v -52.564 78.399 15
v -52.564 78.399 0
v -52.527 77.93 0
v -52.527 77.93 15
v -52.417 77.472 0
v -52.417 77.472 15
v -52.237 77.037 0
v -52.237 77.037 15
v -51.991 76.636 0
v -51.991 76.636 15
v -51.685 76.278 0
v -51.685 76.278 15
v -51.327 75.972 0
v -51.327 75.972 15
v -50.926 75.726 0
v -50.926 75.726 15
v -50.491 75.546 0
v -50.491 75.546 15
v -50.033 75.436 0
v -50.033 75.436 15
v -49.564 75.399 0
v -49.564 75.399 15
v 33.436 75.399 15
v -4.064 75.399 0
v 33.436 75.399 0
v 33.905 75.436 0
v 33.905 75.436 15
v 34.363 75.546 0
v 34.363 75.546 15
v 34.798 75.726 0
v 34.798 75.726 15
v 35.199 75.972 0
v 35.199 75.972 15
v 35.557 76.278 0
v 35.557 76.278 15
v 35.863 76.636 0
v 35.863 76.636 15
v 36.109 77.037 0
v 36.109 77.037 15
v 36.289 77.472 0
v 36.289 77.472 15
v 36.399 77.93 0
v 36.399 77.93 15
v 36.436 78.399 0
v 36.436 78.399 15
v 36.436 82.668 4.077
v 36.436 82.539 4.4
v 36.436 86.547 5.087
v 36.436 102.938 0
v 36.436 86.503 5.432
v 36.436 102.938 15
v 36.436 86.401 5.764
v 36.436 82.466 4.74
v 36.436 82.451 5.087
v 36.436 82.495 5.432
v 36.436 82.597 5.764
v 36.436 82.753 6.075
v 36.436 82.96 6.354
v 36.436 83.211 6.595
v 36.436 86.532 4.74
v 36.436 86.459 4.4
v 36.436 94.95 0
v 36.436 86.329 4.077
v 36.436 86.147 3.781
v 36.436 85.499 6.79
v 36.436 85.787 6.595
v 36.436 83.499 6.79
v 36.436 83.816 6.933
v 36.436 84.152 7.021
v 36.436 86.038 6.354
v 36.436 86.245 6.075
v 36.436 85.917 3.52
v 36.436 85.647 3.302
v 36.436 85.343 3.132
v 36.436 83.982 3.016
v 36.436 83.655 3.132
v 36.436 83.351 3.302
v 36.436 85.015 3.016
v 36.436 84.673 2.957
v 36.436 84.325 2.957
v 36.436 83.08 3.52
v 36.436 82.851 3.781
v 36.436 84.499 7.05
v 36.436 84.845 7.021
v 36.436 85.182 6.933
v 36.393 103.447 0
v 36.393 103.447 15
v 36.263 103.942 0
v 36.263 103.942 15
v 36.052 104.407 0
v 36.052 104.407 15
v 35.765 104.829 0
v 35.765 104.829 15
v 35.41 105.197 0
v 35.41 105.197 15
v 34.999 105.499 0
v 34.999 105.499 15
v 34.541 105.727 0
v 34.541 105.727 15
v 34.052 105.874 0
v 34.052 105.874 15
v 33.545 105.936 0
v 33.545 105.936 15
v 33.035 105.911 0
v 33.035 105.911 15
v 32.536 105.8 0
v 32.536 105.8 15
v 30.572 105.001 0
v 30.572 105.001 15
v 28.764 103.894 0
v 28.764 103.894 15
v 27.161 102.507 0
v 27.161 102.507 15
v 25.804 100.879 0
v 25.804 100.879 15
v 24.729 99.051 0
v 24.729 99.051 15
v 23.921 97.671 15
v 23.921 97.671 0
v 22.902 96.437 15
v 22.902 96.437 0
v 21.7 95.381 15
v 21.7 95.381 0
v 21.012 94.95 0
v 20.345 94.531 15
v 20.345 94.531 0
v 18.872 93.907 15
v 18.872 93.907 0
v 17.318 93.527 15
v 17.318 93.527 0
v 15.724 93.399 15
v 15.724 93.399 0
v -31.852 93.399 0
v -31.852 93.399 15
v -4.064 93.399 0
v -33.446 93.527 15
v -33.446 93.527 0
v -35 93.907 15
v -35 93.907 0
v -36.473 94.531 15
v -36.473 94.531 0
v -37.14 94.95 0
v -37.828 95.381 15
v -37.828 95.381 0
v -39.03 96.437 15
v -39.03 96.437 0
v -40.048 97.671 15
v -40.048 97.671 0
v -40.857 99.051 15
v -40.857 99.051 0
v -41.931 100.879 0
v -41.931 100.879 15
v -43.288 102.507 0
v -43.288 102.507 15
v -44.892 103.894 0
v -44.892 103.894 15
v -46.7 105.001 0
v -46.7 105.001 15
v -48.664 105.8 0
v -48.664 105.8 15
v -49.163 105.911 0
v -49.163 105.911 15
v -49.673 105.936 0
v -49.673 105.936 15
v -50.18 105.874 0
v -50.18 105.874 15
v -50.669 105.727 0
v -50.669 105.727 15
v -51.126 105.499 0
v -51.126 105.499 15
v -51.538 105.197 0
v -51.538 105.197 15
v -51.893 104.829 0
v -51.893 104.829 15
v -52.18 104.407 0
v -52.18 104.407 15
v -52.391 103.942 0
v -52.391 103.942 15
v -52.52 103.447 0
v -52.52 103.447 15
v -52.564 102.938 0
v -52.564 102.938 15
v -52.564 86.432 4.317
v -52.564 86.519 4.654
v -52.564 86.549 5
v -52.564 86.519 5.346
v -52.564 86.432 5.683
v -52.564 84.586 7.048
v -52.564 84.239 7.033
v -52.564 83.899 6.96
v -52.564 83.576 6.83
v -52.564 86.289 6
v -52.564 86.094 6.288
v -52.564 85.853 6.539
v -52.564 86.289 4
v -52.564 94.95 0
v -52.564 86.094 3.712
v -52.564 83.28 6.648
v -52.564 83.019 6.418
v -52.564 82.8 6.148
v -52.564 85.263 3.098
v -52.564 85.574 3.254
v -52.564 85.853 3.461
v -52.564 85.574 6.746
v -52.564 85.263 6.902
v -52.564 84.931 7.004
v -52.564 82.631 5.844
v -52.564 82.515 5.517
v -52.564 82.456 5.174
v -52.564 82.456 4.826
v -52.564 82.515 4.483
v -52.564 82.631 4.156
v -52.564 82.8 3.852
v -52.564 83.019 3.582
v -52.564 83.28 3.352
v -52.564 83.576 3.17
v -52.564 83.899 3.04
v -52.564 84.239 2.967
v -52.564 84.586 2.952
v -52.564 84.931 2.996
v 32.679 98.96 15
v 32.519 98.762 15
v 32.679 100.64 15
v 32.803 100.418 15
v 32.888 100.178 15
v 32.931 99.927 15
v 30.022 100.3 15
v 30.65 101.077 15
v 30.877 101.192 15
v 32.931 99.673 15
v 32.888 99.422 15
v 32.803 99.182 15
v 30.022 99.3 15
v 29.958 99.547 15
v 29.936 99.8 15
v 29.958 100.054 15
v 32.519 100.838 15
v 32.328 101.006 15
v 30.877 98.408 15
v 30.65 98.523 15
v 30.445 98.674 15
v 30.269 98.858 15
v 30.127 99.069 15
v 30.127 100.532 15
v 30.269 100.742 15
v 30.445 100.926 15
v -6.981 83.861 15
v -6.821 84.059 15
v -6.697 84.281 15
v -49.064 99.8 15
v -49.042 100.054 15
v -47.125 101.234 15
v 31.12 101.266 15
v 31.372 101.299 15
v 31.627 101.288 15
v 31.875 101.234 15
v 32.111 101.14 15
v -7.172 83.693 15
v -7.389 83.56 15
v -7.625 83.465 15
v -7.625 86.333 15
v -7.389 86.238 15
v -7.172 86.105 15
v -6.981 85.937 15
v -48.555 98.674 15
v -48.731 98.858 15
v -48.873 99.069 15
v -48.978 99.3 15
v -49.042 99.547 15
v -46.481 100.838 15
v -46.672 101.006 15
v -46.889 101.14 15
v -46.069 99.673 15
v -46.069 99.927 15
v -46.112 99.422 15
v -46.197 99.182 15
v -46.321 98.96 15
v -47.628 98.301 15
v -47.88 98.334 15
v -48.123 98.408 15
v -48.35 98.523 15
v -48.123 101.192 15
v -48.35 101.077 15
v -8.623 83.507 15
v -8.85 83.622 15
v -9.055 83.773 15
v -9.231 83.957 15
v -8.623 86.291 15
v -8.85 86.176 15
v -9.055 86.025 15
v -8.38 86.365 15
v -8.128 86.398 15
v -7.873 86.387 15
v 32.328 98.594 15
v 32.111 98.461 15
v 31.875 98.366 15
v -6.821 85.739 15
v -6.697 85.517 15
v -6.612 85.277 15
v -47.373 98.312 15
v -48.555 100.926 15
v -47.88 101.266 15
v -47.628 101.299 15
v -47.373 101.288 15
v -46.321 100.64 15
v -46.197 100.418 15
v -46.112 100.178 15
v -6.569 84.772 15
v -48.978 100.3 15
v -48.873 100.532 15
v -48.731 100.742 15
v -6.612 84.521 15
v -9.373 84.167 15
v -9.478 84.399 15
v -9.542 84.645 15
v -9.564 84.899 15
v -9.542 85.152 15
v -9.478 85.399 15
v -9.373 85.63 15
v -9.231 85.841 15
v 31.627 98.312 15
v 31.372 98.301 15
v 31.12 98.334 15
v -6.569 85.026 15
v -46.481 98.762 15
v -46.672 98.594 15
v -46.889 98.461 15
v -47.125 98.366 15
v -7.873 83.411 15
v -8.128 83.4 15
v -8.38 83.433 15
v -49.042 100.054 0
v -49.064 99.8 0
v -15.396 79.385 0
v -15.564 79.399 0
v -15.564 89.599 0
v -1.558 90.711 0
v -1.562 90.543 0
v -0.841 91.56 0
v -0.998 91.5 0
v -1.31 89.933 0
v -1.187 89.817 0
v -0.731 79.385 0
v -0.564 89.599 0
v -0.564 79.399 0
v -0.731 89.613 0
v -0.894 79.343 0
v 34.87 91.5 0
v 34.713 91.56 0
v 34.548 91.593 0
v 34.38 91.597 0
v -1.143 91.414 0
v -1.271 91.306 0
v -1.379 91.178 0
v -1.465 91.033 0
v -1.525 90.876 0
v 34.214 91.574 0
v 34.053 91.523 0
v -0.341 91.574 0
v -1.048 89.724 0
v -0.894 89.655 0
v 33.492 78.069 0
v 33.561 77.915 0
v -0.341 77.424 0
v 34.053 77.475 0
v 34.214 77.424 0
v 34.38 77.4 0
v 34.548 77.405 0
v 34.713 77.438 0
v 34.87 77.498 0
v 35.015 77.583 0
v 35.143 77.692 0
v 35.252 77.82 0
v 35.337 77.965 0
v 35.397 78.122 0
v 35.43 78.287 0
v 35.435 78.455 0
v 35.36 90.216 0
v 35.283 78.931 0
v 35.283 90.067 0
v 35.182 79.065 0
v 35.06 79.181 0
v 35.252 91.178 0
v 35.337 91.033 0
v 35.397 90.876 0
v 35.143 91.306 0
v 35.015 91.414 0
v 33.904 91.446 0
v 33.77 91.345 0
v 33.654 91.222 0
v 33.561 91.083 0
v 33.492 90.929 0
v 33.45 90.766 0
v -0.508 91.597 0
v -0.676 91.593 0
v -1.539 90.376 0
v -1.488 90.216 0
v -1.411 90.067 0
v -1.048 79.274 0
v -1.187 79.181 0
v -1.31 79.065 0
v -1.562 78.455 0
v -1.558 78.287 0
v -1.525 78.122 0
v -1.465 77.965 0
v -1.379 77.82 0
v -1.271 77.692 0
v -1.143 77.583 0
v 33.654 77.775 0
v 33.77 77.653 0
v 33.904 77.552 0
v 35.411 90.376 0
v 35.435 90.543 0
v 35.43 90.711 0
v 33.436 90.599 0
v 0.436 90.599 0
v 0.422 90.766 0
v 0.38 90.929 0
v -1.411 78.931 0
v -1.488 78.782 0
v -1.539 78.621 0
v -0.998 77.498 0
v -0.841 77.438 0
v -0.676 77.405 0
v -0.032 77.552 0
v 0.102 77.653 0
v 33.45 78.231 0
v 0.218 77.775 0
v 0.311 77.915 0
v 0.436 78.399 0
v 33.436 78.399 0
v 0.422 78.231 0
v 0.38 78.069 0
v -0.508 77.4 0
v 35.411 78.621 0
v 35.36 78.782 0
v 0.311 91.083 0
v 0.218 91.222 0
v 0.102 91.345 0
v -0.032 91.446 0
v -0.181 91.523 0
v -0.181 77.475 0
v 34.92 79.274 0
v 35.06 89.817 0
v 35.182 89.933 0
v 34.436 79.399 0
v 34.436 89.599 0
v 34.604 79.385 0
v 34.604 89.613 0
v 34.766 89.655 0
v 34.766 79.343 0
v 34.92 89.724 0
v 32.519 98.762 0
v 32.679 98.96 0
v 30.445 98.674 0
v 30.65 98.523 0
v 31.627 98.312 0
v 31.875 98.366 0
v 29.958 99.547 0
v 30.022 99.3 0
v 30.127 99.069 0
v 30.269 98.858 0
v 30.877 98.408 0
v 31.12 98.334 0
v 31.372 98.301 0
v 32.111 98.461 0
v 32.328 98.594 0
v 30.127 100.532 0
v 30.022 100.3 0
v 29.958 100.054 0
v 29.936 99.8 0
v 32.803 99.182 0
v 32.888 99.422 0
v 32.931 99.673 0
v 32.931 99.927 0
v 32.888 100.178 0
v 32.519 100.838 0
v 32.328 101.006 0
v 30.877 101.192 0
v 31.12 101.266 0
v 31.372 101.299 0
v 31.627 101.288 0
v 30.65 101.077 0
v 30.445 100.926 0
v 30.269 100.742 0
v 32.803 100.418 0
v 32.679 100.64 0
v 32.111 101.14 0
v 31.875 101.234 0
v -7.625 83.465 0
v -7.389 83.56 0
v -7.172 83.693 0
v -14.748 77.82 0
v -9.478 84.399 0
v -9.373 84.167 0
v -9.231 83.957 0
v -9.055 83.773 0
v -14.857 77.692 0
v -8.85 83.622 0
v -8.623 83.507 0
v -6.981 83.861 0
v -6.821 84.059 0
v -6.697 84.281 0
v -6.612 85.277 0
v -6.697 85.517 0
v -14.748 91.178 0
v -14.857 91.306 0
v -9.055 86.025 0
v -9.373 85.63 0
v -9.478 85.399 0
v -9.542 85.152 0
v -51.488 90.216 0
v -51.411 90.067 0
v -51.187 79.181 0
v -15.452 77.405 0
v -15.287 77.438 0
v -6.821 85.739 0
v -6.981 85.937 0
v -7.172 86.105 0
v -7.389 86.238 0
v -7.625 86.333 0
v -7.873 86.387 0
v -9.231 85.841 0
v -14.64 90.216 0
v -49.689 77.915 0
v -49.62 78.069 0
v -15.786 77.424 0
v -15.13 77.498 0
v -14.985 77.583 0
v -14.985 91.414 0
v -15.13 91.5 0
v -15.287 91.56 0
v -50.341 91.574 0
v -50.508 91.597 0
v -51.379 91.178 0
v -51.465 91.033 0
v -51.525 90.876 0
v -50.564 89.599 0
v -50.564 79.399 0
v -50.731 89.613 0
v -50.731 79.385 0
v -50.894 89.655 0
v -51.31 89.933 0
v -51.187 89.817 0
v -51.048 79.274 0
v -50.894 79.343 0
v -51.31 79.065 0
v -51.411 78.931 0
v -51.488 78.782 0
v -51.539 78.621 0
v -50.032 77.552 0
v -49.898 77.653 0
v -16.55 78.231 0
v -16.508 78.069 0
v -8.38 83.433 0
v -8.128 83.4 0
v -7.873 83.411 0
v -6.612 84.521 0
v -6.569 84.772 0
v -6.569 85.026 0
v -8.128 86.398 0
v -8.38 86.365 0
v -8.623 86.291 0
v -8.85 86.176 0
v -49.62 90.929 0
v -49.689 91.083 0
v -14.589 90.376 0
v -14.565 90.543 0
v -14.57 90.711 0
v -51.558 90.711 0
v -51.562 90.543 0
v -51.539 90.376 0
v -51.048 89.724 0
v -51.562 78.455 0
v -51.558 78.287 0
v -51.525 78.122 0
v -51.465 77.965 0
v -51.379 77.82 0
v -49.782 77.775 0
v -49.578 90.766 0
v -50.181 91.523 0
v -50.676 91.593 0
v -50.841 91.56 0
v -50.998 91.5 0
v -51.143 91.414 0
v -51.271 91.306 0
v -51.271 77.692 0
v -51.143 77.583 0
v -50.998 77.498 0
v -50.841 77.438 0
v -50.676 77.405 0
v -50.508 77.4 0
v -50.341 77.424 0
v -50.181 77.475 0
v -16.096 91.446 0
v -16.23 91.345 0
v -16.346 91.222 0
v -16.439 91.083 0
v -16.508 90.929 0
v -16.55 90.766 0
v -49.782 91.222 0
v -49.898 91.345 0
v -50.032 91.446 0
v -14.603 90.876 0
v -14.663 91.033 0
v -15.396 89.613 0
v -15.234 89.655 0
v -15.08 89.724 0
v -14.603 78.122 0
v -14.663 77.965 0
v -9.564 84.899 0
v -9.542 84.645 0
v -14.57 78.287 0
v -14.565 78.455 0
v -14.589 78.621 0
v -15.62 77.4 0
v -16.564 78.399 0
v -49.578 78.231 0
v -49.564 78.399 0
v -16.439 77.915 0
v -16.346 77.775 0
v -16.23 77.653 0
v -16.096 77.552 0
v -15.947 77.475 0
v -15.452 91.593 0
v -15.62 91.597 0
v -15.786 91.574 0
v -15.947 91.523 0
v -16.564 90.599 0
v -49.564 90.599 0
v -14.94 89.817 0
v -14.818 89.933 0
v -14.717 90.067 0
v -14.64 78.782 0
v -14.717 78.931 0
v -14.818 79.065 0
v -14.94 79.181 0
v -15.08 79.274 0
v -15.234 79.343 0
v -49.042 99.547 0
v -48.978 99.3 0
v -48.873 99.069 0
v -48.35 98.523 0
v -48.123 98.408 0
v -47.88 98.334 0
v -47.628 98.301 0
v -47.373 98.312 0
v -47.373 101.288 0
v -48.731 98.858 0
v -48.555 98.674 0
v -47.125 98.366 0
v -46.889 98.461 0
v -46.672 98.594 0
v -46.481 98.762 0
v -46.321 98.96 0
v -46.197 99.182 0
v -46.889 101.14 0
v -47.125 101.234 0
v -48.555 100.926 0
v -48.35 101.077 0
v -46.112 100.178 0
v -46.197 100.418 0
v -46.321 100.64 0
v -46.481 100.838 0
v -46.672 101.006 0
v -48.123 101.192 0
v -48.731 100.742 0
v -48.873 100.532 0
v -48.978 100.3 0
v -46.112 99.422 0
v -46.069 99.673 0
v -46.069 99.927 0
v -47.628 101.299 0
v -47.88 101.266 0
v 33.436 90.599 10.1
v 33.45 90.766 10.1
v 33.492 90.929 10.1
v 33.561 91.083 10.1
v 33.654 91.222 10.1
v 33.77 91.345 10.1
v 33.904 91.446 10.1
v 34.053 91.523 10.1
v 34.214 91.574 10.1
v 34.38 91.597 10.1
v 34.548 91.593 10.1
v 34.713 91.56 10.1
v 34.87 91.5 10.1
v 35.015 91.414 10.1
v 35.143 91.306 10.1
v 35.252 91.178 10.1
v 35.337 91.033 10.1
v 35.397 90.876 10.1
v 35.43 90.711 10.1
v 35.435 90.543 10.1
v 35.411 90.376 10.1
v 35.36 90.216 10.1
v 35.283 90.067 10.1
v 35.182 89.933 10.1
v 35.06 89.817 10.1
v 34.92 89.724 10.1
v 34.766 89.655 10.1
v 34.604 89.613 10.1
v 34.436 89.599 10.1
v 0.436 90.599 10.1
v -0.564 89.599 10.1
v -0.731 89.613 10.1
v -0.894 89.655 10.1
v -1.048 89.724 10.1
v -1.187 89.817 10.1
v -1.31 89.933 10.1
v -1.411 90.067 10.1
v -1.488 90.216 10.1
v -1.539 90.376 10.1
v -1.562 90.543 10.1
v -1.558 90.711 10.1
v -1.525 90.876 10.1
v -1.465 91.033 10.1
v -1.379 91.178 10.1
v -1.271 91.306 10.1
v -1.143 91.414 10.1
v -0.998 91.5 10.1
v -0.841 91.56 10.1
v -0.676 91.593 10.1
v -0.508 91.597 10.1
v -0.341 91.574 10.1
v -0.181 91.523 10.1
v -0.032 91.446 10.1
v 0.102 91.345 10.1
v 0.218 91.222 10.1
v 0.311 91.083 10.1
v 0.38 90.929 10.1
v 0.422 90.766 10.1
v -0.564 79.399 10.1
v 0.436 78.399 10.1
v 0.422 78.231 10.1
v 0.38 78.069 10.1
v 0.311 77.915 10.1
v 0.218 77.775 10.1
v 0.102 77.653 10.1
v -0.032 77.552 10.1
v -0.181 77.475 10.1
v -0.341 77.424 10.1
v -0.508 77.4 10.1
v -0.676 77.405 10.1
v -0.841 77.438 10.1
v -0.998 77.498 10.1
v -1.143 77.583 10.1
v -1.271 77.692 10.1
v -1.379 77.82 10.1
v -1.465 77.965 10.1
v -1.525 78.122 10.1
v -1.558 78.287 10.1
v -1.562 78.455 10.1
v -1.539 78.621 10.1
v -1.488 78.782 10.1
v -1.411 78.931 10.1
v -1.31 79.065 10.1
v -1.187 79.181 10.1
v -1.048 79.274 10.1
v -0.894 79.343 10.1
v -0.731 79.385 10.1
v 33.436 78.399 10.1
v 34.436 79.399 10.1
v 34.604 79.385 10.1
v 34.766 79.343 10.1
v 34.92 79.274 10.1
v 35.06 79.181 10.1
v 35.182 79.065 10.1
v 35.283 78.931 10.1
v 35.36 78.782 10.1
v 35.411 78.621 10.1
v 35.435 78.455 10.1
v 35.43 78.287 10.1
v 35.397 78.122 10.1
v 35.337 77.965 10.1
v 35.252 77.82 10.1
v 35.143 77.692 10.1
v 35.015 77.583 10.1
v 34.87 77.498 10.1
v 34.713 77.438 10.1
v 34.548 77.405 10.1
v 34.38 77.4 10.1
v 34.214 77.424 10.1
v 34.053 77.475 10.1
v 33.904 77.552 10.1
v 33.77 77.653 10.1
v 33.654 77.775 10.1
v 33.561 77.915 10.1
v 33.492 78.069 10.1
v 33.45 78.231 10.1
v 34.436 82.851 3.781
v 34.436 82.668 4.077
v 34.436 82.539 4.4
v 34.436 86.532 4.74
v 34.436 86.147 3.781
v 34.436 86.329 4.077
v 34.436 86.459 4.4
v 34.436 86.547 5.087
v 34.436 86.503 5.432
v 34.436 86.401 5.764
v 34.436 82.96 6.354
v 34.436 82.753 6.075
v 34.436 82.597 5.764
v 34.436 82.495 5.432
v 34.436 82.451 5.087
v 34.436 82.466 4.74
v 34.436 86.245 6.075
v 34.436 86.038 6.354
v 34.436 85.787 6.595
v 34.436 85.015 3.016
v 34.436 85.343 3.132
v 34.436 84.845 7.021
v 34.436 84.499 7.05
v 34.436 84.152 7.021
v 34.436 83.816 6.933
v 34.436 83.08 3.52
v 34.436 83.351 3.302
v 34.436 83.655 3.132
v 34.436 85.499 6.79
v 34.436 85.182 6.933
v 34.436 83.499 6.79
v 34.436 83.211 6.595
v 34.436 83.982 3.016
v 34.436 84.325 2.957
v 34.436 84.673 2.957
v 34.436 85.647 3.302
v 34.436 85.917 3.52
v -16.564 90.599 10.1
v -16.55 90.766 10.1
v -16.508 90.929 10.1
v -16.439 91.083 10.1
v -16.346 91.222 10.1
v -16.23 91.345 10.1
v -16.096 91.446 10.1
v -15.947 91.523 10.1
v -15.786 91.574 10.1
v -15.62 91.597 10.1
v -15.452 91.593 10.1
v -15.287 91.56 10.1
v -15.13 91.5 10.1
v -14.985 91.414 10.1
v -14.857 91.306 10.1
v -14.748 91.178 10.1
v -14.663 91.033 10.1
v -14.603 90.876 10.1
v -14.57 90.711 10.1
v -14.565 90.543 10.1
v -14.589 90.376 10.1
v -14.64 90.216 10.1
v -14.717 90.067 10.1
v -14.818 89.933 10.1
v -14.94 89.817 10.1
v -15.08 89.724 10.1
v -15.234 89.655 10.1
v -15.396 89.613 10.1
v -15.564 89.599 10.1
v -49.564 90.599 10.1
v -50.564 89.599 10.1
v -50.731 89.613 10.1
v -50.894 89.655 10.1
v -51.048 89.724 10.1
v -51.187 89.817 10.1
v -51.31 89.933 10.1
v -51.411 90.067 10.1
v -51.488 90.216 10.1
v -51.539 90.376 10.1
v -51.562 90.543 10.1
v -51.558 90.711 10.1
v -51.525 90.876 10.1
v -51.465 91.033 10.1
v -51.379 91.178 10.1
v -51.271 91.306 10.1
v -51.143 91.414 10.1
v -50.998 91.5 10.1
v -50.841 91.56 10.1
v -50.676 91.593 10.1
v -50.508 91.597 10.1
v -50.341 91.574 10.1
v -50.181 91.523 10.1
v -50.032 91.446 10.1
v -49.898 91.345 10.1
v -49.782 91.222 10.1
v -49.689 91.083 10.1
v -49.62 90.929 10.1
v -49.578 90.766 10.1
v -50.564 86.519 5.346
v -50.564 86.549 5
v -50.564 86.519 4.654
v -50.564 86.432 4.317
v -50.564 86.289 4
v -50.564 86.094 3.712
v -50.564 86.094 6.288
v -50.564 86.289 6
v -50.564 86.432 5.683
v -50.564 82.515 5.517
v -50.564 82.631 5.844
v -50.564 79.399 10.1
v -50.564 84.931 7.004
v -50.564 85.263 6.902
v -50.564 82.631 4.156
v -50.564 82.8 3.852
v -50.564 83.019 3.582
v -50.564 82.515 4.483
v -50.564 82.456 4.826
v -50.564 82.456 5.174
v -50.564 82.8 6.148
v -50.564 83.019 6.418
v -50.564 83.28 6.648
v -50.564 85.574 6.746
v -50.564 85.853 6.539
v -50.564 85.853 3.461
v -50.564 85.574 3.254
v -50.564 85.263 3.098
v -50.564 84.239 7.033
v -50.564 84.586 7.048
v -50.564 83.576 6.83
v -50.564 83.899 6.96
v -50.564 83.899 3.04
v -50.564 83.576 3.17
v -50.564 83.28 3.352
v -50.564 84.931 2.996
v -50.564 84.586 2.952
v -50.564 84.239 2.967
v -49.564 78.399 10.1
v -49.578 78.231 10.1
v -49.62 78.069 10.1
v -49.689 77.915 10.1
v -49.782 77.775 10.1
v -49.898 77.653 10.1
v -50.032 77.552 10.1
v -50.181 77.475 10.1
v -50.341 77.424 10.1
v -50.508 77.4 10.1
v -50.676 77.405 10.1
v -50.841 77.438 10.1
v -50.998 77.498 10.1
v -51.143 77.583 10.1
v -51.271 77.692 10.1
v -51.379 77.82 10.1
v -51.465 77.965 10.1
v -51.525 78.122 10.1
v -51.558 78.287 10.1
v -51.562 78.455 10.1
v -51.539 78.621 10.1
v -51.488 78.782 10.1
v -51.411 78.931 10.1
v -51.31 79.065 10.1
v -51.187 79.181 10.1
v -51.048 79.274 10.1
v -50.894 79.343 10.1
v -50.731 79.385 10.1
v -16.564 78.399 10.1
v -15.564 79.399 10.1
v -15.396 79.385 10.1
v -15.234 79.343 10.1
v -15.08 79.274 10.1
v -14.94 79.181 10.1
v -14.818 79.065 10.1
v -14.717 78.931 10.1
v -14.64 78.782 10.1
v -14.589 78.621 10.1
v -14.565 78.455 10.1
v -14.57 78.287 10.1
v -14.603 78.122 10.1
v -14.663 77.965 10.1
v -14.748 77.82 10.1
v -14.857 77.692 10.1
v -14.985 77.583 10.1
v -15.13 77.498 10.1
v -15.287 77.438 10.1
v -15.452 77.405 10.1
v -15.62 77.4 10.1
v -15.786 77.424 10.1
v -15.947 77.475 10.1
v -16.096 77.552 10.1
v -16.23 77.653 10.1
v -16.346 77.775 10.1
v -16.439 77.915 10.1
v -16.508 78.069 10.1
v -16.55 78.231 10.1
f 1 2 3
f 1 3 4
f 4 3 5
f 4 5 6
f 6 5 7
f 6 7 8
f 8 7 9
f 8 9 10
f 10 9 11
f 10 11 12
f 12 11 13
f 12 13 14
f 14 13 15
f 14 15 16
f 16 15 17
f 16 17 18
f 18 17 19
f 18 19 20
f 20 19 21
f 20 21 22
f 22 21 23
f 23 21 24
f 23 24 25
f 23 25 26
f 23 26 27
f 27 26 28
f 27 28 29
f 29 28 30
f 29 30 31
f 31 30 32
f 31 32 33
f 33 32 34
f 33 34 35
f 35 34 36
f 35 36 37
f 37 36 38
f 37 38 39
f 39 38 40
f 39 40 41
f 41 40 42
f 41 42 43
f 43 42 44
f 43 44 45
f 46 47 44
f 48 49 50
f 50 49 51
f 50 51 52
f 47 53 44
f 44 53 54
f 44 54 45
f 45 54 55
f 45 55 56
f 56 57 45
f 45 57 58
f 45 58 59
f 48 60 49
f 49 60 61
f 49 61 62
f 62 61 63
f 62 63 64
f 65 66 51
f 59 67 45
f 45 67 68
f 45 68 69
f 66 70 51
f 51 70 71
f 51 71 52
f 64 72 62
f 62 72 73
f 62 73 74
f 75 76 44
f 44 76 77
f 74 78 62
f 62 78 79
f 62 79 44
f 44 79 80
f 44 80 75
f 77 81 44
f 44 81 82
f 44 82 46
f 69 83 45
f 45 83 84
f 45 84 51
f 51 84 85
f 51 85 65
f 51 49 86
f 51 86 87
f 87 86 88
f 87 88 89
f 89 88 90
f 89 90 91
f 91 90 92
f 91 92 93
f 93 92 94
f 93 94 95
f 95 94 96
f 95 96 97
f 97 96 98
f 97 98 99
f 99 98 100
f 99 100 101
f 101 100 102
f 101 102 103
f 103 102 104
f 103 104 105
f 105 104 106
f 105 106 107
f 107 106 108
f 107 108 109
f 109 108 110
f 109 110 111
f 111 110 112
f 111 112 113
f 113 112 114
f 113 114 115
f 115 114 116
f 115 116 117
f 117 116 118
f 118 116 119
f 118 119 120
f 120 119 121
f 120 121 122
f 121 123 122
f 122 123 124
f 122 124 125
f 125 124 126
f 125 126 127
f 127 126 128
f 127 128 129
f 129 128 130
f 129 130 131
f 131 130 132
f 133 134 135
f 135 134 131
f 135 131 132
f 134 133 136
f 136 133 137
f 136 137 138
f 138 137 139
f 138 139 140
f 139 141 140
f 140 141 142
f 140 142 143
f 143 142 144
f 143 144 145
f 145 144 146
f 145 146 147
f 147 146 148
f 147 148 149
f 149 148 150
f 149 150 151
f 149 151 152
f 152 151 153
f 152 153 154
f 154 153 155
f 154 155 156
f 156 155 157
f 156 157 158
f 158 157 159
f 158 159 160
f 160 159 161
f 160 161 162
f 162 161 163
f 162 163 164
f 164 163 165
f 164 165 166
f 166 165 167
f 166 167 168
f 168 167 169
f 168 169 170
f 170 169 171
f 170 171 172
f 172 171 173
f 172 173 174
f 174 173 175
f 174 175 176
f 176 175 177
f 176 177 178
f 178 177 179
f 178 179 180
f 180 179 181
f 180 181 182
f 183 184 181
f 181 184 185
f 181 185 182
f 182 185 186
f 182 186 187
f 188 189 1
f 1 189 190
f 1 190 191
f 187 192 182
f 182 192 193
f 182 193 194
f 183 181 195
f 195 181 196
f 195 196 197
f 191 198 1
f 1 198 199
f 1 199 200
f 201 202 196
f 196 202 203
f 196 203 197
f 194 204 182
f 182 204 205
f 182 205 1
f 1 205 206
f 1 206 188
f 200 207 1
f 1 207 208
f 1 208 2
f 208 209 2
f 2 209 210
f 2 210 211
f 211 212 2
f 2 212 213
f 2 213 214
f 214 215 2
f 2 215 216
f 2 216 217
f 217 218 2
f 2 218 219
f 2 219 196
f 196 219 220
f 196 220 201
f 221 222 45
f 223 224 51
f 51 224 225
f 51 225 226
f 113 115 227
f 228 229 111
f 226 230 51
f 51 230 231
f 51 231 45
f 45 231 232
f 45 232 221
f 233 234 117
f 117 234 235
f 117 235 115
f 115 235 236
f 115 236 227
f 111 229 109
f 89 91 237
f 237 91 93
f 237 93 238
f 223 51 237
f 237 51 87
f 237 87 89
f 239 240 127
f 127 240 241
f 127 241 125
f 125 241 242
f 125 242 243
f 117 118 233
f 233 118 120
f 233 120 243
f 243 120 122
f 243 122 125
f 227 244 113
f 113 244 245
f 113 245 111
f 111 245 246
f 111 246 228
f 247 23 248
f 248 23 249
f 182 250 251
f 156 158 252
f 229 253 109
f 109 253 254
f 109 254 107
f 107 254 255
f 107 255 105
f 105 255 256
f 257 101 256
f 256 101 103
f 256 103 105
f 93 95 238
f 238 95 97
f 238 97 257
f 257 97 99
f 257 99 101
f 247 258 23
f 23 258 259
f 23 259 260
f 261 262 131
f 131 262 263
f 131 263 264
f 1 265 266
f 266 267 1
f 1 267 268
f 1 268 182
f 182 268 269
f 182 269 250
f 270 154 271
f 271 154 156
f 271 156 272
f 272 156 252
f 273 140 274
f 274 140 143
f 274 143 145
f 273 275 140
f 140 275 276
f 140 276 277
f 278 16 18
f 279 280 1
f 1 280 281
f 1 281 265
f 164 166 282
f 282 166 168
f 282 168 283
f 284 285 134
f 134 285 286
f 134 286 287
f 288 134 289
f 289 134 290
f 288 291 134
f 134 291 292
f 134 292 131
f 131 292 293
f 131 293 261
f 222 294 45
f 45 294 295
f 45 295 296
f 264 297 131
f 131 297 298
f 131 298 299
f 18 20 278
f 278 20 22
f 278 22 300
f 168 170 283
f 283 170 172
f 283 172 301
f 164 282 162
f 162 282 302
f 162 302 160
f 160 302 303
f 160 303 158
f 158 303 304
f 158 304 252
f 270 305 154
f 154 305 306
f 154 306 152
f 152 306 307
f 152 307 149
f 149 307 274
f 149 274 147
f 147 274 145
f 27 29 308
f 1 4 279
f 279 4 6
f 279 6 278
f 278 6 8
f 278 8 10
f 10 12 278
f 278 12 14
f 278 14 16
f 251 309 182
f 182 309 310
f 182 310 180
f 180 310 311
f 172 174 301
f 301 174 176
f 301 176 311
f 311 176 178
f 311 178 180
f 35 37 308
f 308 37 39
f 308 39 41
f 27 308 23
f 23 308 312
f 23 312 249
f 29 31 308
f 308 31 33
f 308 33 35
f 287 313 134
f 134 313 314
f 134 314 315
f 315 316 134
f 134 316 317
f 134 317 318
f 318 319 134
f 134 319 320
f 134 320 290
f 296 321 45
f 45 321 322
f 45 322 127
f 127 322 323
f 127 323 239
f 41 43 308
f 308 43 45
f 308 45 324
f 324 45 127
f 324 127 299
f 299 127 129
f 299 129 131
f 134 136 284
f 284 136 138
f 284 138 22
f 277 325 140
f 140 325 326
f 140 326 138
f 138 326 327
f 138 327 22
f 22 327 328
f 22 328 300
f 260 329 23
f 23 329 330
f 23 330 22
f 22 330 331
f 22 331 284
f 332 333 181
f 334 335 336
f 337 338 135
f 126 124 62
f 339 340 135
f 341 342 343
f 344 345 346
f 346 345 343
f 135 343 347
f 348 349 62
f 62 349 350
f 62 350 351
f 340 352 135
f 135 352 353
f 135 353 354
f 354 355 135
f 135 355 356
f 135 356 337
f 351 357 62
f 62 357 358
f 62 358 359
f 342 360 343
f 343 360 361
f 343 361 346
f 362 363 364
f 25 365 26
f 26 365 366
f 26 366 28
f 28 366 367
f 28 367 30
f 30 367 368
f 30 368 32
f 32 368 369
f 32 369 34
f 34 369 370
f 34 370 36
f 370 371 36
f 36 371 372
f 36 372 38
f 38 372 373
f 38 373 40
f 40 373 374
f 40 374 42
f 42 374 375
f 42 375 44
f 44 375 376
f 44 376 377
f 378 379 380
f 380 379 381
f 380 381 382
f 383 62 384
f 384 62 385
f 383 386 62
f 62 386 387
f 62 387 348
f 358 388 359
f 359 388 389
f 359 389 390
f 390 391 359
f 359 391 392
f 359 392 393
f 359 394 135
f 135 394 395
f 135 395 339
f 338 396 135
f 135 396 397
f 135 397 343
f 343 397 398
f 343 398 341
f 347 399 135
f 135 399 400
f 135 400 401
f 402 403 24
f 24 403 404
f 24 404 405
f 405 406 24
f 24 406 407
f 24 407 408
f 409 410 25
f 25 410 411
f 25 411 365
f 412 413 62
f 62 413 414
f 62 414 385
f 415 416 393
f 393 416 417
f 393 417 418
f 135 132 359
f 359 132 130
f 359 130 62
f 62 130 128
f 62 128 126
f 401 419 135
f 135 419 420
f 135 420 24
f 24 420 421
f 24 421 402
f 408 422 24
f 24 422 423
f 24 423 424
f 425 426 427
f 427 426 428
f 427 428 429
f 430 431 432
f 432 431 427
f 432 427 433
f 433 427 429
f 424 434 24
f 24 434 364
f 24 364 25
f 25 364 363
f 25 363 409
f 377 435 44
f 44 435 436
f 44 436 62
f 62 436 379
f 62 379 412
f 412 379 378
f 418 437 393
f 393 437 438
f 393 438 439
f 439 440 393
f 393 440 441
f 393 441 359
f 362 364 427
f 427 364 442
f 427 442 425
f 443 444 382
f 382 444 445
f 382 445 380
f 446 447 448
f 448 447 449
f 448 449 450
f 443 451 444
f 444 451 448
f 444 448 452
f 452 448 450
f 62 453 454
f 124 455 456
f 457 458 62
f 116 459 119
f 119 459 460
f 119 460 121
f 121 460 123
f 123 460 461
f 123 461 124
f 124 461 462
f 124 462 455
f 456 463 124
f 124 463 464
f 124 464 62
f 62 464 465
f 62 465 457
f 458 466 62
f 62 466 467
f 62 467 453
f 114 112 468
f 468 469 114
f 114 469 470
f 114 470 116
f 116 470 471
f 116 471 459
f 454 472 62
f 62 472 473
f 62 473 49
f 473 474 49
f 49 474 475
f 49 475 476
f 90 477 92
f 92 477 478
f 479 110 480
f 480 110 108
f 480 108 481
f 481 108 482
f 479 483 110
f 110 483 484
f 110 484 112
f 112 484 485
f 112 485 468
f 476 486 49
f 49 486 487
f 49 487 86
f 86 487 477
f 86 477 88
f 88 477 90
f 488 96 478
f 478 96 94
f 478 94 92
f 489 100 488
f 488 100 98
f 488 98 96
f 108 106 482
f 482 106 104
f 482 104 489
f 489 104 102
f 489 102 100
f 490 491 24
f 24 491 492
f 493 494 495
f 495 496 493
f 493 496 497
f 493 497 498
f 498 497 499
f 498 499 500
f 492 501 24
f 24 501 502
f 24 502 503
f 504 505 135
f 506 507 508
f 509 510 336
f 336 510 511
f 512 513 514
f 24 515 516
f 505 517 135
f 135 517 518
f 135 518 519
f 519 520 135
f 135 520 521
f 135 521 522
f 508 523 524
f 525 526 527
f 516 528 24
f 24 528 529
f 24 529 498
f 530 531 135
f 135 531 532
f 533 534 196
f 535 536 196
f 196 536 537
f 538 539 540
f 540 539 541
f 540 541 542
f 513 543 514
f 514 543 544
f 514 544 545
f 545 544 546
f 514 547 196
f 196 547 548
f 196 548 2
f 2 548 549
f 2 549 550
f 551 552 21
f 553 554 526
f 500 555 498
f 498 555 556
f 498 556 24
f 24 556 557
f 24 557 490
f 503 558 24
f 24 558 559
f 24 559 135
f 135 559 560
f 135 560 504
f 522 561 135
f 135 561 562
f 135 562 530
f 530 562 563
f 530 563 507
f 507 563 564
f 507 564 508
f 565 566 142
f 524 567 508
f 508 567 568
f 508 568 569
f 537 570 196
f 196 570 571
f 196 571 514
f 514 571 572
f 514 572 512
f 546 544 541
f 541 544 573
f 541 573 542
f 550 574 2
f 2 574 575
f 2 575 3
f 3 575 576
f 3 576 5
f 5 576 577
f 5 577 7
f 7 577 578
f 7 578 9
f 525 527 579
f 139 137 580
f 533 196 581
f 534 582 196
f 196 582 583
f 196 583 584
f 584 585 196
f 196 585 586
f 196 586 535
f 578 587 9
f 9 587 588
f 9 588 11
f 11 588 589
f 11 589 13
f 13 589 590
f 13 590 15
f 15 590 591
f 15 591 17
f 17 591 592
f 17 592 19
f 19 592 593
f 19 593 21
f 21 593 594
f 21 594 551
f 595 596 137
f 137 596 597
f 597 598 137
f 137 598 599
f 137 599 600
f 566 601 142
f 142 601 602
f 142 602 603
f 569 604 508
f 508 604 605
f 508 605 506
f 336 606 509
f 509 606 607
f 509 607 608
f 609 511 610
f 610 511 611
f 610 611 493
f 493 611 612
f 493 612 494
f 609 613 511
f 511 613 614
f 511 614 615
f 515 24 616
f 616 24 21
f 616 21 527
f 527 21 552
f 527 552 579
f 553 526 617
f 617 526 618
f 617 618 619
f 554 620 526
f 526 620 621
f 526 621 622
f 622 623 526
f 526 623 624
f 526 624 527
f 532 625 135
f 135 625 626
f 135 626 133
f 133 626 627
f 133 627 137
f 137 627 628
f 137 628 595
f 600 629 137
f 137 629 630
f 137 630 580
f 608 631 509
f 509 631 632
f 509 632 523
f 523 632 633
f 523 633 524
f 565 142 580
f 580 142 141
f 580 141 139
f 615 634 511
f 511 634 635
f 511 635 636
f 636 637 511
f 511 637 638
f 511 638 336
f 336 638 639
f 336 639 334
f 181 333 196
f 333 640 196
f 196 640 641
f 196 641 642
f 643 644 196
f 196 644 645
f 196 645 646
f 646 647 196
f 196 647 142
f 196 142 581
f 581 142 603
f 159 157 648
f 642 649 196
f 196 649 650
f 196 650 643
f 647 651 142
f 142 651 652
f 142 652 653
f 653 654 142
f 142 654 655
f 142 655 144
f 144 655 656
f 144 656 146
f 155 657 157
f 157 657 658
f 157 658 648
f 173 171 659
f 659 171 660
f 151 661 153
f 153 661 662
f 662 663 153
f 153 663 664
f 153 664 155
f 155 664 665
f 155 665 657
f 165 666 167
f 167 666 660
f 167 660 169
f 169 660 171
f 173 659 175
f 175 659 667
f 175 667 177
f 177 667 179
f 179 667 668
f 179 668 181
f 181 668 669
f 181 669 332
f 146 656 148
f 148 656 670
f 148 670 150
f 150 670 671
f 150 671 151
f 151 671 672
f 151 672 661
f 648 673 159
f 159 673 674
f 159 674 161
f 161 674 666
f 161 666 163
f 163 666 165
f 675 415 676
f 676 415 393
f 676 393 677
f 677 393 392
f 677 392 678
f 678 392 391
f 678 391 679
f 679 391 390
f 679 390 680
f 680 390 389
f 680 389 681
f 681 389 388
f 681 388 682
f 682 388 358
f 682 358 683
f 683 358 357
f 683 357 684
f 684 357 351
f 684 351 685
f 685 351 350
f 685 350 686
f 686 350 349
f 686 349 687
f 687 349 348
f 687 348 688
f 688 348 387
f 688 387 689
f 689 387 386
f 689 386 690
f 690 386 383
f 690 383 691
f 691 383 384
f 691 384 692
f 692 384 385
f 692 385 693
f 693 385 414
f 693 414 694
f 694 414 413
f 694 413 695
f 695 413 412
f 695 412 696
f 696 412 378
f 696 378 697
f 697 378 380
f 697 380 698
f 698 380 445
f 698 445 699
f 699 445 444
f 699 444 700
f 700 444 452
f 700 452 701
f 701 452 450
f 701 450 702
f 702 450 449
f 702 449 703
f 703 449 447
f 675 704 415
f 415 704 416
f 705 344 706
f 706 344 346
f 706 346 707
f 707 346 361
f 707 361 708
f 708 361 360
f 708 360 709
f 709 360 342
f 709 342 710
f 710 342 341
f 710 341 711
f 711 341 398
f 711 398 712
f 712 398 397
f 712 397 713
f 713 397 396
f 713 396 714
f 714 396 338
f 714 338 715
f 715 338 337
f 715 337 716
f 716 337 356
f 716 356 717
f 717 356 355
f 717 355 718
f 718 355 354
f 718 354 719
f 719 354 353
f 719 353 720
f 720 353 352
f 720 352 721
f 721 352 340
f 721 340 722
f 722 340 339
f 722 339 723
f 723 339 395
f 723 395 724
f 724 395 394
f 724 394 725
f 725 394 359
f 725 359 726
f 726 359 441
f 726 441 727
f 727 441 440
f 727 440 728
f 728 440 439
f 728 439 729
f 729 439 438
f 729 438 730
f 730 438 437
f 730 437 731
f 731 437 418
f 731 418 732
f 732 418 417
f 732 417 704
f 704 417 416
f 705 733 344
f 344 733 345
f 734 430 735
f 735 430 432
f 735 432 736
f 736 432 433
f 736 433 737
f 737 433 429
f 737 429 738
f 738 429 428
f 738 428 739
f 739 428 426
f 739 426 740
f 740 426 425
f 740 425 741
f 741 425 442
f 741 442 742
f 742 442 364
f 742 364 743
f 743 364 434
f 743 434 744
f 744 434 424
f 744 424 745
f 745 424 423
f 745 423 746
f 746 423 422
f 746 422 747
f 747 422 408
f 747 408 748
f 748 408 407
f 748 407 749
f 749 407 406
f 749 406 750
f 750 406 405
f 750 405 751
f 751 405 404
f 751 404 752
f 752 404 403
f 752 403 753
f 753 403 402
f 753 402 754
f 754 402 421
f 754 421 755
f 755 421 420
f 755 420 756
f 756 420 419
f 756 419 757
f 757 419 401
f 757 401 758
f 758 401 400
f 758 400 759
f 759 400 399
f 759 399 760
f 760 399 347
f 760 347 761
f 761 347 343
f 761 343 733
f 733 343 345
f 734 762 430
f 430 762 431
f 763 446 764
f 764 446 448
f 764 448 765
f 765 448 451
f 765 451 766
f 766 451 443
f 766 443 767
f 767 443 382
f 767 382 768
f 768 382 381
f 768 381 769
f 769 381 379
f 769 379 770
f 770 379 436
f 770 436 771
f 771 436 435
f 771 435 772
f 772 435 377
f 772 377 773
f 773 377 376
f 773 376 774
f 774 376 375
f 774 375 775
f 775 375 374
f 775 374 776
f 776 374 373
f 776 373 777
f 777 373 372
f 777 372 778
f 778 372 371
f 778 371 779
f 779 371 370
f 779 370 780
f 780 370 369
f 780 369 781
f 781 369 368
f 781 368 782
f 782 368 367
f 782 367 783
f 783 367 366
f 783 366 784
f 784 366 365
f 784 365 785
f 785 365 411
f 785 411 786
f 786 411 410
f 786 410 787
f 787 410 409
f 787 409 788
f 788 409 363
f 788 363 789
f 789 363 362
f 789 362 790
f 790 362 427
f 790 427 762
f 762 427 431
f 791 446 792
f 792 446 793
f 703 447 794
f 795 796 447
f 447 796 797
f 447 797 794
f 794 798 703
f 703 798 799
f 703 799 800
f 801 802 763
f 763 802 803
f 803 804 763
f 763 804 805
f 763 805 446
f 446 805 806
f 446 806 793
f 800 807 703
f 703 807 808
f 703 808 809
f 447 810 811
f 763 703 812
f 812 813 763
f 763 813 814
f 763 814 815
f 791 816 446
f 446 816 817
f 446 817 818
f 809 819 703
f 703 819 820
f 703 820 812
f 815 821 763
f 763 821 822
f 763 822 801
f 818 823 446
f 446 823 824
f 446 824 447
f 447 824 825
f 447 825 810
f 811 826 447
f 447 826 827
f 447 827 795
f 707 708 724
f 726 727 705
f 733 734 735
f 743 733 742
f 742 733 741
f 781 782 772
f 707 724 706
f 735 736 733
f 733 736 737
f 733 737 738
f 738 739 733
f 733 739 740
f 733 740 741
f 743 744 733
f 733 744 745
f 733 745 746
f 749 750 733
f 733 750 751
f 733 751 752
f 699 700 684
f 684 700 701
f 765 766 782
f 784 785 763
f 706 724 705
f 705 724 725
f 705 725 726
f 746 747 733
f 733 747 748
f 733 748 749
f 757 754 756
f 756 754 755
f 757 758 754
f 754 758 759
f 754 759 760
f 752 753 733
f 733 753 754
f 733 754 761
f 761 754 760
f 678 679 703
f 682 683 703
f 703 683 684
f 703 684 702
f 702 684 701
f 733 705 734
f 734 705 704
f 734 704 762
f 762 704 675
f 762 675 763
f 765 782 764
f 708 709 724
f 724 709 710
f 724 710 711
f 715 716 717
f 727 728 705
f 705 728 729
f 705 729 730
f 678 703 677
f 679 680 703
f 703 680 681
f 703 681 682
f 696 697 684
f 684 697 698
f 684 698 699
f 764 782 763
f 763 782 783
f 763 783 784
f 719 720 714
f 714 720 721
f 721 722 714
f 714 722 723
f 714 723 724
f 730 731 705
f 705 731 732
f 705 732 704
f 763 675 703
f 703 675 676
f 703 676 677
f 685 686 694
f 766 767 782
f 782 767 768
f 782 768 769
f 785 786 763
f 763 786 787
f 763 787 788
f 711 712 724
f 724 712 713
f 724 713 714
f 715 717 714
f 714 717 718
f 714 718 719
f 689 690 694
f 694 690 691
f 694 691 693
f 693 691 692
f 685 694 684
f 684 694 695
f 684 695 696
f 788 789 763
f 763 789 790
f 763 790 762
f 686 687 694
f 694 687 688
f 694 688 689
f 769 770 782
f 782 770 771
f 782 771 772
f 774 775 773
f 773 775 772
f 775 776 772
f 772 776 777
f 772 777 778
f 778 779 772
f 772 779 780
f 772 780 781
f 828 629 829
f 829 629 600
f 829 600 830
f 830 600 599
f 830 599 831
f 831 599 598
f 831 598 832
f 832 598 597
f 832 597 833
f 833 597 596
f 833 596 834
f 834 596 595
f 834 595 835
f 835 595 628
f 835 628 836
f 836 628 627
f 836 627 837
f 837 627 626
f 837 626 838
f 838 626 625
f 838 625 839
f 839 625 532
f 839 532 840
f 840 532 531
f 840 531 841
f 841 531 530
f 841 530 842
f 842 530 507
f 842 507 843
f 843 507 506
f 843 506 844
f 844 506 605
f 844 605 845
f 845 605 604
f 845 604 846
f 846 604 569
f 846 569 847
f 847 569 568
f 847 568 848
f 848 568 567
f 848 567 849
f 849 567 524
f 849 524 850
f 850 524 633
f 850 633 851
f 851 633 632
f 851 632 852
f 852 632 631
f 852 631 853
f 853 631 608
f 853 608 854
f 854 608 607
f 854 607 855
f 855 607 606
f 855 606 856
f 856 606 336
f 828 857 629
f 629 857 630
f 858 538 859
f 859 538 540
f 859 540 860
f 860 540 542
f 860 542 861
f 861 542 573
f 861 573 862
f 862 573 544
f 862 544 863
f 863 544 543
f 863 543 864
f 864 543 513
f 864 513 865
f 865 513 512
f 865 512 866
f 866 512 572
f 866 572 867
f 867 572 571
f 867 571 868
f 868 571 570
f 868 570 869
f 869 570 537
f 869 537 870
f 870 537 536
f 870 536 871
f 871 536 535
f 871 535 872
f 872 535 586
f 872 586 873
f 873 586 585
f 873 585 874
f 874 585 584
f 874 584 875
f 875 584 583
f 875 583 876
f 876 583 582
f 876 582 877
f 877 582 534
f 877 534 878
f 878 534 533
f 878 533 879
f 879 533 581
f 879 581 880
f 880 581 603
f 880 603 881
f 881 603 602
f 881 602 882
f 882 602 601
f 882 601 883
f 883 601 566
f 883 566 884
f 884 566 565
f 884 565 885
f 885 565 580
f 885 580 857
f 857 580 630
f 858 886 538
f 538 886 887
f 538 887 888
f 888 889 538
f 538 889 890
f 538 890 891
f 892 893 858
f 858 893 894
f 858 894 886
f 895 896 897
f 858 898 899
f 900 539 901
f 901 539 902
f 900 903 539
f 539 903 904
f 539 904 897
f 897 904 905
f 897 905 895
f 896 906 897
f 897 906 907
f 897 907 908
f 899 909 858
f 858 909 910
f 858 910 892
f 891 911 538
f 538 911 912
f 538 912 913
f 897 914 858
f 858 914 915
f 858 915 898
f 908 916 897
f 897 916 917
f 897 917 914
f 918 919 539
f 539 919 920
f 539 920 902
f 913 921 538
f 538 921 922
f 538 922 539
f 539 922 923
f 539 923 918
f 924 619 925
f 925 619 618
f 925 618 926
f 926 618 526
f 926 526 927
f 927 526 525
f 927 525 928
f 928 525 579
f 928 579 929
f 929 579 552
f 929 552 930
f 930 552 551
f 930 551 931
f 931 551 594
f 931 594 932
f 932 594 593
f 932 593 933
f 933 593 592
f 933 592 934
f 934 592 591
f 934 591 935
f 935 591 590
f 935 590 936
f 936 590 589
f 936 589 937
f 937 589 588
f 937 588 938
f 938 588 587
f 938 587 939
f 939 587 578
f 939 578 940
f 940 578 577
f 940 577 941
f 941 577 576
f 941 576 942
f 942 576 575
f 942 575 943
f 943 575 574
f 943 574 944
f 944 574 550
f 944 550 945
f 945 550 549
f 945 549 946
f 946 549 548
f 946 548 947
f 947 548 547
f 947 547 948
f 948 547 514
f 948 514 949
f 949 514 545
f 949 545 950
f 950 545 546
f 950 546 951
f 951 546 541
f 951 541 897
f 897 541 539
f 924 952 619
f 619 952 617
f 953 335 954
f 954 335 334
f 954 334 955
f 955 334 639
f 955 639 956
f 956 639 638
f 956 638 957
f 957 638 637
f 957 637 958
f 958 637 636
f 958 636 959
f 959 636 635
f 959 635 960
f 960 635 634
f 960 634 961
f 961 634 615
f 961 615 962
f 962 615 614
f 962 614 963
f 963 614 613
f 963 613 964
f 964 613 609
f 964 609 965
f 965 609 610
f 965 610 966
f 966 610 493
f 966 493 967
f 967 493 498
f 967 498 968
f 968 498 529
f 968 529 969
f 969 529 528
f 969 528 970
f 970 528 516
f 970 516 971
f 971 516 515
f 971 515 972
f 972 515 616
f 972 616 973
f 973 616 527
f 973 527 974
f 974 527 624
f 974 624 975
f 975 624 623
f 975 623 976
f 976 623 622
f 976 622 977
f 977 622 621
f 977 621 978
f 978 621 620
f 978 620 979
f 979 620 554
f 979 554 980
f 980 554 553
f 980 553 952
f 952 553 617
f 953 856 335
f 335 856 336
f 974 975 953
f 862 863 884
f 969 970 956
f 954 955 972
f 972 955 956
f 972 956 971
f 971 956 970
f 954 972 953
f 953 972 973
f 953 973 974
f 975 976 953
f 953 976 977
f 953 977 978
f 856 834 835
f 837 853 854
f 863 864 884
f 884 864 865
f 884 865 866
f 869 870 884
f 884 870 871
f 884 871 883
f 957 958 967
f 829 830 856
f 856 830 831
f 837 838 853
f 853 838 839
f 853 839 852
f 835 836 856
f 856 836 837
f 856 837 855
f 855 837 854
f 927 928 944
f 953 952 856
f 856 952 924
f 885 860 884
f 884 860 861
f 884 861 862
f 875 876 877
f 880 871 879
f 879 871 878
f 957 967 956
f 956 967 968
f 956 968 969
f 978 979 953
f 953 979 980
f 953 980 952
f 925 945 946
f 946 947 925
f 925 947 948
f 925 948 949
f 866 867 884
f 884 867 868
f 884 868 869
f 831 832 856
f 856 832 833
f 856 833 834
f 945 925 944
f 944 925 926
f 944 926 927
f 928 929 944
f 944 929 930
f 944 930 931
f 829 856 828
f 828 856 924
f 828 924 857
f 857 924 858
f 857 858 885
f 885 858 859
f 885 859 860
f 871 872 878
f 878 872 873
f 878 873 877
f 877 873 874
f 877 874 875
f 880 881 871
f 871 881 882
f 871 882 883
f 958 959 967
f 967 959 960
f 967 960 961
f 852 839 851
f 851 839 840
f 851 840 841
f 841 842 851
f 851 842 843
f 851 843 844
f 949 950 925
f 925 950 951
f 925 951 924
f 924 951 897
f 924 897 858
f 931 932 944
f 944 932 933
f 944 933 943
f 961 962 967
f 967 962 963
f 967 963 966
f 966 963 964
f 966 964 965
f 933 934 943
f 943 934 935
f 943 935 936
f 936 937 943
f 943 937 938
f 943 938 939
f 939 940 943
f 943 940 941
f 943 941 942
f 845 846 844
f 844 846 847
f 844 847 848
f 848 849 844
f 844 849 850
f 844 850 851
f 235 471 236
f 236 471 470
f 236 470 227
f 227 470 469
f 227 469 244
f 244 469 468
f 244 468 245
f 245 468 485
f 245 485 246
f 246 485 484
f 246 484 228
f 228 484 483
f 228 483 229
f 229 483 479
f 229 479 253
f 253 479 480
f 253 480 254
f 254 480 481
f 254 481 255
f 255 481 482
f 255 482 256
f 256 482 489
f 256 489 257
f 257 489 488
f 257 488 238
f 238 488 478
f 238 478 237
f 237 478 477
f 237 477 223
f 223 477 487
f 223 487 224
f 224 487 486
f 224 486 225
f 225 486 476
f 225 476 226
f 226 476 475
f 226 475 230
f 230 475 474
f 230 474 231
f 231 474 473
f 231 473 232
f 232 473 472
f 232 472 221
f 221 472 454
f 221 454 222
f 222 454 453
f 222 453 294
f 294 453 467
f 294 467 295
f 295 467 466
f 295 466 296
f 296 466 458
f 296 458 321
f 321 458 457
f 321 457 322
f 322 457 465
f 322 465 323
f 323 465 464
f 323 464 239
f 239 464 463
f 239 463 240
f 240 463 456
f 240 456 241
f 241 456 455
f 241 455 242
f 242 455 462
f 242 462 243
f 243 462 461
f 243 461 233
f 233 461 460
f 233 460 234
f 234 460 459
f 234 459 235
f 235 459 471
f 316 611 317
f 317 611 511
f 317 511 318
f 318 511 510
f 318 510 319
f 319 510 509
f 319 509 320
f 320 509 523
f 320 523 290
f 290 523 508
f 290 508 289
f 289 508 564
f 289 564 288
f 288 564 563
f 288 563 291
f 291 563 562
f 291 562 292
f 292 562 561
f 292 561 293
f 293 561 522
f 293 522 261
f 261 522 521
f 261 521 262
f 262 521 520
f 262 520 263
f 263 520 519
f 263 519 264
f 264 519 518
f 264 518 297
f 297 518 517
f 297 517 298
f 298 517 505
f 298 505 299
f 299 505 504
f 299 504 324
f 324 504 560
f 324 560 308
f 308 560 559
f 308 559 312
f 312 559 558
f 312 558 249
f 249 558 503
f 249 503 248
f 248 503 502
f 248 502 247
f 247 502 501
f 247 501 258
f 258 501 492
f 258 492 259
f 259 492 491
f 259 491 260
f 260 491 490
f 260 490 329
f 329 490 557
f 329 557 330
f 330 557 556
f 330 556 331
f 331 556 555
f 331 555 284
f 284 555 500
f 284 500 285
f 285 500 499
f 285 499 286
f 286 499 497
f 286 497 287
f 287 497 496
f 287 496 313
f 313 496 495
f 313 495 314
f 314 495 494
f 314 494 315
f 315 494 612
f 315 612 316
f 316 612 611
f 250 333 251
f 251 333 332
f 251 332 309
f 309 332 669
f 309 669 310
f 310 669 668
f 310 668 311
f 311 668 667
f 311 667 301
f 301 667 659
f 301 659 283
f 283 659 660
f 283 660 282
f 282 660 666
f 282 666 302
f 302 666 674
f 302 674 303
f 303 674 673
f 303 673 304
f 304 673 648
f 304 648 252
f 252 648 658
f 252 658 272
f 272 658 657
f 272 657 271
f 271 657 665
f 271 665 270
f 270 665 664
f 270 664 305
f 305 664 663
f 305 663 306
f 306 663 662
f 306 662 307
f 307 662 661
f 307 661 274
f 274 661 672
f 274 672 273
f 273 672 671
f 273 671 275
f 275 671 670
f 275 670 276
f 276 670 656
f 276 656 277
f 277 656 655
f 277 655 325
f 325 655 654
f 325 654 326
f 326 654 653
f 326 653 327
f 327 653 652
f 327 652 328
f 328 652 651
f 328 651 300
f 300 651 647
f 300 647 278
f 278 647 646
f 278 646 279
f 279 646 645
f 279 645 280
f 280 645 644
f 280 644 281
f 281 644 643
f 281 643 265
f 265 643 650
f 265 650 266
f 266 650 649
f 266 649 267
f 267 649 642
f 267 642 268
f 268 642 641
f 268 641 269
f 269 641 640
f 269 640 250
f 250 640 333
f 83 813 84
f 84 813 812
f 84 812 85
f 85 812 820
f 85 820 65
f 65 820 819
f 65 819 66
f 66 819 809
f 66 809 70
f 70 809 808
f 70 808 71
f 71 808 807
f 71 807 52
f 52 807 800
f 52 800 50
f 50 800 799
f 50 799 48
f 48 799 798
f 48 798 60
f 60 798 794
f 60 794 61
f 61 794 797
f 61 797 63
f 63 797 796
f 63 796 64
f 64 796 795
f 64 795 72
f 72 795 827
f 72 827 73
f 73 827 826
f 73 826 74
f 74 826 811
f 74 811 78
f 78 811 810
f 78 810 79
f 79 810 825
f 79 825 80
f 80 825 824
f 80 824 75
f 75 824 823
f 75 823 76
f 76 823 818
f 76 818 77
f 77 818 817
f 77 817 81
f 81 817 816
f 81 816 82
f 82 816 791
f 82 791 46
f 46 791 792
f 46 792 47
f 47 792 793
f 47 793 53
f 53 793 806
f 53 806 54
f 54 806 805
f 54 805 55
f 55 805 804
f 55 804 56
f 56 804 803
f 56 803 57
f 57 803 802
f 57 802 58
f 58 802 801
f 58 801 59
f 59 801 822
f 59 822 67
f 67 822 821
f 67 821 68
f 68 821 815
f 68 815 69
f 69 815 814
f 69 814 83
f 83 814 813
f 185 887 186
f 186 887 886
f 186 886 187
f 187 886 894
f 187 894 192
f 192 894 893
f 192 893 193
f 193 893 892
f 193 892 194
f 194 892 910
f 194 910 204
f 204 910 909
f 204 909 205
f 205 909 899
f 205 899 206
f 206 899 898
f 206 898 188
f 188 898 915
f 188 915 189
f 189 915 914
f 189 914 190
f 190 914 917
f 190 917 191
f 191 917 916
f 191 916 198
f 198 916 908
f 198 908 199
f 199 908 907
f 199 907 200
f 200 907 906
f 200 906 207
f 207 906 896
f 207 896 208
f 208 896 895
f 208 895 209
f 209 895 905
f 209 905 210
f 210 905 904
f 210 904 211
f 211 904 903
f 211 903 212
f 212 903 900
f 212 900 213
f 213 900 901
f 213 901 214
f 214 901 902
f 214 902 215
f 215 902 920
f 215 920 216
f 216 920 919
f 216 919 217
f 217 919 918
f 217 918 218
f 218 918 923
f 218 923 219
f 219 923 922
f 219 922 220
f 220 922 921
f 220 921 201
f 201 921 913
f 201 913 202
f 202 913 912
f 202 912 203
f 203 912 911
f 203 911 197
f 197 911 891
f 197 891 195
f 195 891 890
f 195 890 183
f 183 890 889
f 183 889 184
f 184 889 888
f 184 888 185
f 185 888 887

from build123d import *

# Parameters (mm, degrees)
RESSALTO_EXTRUS_O3_DEPTH = 15
CORTE_EXTRUS_O1_DEPTH    = 10.1
ESBO_O3_R                = 1.5
CORTE_EXTRUS_O2_DEPTH    = 16
ESBO_O4_R                = 2.05
CORTE_EXTRUS_O3_DEPTH    = 3
ESBO_O5_R                = 2.05
CORTE_EXTRUS_O4_DEPTH    = 3


with BuildPart() as part:
    # Esboço1 → Ressalto-extrusão3 (new body)
    with BuildSketch(Plane.XY):
        with BuildLine():
            Line((33.436114051, 75.398903013), (-49.563885949, 75.398903013))
            ThreePointArc((-49.563885949, 75.398903013), (-51.685206293, 76.277582669), (-52.563885949, 78.398903013))
            Line((-52.563885949, 78.398903013), (-52.563885949, 93.398903013))
            Line((-52.563885949, 93.398903013), (-52.563885949, 102.938295027))
            ThreePointArc((-52.563885949, 102.938295027), (-51.338709884, 105.356972352), (-48.663885949, 105.800112631))
            ThreePointArc((-48.663885949, 105.800112631), (-44.062022817, 103.23345045), (-40.856925197, 99.051076926))
            ThreePointArc((-40.856925197, 99.051076926), (-37.167666102, 94.929007474), (-31.851570772, 93.398903013))
            Line((-31.851570772, 93.398903013), (-27.063885949, 93.398903013))
            Line((-27.063885949, 93.398903013), (10.936114051, 93.398903013))
            Line((10.936114051, 93.398903013), (15.723798874, 93.398903013))
            ThreePointArc((15.723798874, 93.398903013), (21.039894205, 94.929007474), (24.729153299, 99.051076926))
            ThreePointArc((24.729153299, 99.051076926), (27.934250919, 103.23345045), (32.536114051, 105.800112631))
            ThreePointArc((32.536114051, 105.800112631), (35.210937986, 105.356972352), (36.436114051, 102.938295027))
            Line((36.436114051, 102.938295027), (36.436114051, 93.398903013))
            Line((36.436114051, 93.398903013), (36.436114051, 78.398903013))
            ThreePointArc((36.436114051, 78.398903013), (35.557434395, 76.277582669), (33.436114051, 75.398903013))
        make_face()
    extrude(amount=RESSALTO_EXTRUS_O3_DEPTH)

    # Esboço2 → Corte-extrusão1 (cut)
    with BuildSketch(Plane(origin=(0, 0, 0), x_dir=(-1, 0, 0), z_dir=(0, 0, -1))):
        with BuildLine():
            Line((15.563885949, 89.598903013), (15.563885949, 79.398903013))
            ThreePointArc((15.563885949, 79.398903013), (14.856779168, 77.691796232), (16.563885949, 78.398903013))
            Line((16.563885949, 78.398903013), (49.563885949, 78.398903013))
            ThreePointArc((49.563885949, 78.398903013), (51.27099273, 77.691796232), (50.563885949, 79.398903013))
            Line((50.563885949, 79.398903013), (50.563885949, 89.598903013))
            ThreePointArc((50.563885949, 89.598903013), (51.27099273, 91.306009794), (49.563885949, 90.598903013))
            Line((49.563885949, 90.598903013), (16.563885949, 90.598903013))
            ThreePointArc((16.563885949, 90.598903013), (14.856779168, 91.306009794), (15.563885949, 89.598903013))
        make_face()
        with BuildLine():
            Line((-33.436114051, 90.598903013), (-0.436114051, 90.598903013))
            ThreePointArc((-0.436114051, 90.598903013), (1.27099273, 91.306009794), (0.563885949, 89.598903013))
            Line((0.563885949, 89.598903013), (0.563885949, 79.398903013))
            ThreePointArc((0.563885949, 79.398903013), (1.27099273, 77.691796232), (-0.436114051, 78.398903013))
            Line((-0.436114051, 78.398903013), (-33.436114051, 78.398903013))
            ThreePointArc((-33.436114051, 78.398903013), (-35.143220832, 77.691796232), (-34.436114051, 79.398903013))
            Line((-34.436114051, 79.398903013), (-34.436114051, 89.598903013))
            ThreePointArc((-34.436114051, 89.598903013), (-35.143220832, 91.306009794), (-33.436114051, 90.598903013))
        make_face()
    extrude(amount=-CORTE_EXTRUS_O1_DEPTH, mode=Mode.SUBTRACT)

    # Esboço3 → Corte-extrusão2 (cut, through all)
    with BuildSketch(Plane(origin=(0, 0, 0), x_dir=(-1, 0, 0), z_dir=(0, 0, -1))):
        with Locations((-31.436114051, 99.800112631)):
            Circle(ESBO_O3_R)
        with Locations((47.563885949, 99.800112631)):
            Circle(ESBO_O3_R)
        with Locations((8.063885949, 84.898903013)):
            Circle(ESBO_O3_R)
    extrude(amount=-CORTE_EXTRUS_O2_DEPTH, mode=Mode.SUBTRACT)

    # Esboço4 → Corte-extrusão3 (cut, through all)
    with BuildSketch(Plane.ZY.offset(-34.436114051)):
        with Locations((5, 84.498903013)):
            Circle(ESBO_O4_R)
    extrude(amount=-CORTE_EXTRUS_O3_DEPTH, mode=Mode.SUBTRACT)

    # Esboço5 → Corte-extrusão4 (cut, through all)
    with BuildSketch(Plane(origin=(-50.563885949, 0, 0), x_dir=(0, 0, -1), z_dir=(1, 0, 0))):
        with Locations((-5, 84.498903013)):
            Circle(ESBO_O5_R)
    extrude(amount=-CORTE_EXTRUS_O4_DEPTH, mode=Mode.SUBTRACT)


solid = part.part
